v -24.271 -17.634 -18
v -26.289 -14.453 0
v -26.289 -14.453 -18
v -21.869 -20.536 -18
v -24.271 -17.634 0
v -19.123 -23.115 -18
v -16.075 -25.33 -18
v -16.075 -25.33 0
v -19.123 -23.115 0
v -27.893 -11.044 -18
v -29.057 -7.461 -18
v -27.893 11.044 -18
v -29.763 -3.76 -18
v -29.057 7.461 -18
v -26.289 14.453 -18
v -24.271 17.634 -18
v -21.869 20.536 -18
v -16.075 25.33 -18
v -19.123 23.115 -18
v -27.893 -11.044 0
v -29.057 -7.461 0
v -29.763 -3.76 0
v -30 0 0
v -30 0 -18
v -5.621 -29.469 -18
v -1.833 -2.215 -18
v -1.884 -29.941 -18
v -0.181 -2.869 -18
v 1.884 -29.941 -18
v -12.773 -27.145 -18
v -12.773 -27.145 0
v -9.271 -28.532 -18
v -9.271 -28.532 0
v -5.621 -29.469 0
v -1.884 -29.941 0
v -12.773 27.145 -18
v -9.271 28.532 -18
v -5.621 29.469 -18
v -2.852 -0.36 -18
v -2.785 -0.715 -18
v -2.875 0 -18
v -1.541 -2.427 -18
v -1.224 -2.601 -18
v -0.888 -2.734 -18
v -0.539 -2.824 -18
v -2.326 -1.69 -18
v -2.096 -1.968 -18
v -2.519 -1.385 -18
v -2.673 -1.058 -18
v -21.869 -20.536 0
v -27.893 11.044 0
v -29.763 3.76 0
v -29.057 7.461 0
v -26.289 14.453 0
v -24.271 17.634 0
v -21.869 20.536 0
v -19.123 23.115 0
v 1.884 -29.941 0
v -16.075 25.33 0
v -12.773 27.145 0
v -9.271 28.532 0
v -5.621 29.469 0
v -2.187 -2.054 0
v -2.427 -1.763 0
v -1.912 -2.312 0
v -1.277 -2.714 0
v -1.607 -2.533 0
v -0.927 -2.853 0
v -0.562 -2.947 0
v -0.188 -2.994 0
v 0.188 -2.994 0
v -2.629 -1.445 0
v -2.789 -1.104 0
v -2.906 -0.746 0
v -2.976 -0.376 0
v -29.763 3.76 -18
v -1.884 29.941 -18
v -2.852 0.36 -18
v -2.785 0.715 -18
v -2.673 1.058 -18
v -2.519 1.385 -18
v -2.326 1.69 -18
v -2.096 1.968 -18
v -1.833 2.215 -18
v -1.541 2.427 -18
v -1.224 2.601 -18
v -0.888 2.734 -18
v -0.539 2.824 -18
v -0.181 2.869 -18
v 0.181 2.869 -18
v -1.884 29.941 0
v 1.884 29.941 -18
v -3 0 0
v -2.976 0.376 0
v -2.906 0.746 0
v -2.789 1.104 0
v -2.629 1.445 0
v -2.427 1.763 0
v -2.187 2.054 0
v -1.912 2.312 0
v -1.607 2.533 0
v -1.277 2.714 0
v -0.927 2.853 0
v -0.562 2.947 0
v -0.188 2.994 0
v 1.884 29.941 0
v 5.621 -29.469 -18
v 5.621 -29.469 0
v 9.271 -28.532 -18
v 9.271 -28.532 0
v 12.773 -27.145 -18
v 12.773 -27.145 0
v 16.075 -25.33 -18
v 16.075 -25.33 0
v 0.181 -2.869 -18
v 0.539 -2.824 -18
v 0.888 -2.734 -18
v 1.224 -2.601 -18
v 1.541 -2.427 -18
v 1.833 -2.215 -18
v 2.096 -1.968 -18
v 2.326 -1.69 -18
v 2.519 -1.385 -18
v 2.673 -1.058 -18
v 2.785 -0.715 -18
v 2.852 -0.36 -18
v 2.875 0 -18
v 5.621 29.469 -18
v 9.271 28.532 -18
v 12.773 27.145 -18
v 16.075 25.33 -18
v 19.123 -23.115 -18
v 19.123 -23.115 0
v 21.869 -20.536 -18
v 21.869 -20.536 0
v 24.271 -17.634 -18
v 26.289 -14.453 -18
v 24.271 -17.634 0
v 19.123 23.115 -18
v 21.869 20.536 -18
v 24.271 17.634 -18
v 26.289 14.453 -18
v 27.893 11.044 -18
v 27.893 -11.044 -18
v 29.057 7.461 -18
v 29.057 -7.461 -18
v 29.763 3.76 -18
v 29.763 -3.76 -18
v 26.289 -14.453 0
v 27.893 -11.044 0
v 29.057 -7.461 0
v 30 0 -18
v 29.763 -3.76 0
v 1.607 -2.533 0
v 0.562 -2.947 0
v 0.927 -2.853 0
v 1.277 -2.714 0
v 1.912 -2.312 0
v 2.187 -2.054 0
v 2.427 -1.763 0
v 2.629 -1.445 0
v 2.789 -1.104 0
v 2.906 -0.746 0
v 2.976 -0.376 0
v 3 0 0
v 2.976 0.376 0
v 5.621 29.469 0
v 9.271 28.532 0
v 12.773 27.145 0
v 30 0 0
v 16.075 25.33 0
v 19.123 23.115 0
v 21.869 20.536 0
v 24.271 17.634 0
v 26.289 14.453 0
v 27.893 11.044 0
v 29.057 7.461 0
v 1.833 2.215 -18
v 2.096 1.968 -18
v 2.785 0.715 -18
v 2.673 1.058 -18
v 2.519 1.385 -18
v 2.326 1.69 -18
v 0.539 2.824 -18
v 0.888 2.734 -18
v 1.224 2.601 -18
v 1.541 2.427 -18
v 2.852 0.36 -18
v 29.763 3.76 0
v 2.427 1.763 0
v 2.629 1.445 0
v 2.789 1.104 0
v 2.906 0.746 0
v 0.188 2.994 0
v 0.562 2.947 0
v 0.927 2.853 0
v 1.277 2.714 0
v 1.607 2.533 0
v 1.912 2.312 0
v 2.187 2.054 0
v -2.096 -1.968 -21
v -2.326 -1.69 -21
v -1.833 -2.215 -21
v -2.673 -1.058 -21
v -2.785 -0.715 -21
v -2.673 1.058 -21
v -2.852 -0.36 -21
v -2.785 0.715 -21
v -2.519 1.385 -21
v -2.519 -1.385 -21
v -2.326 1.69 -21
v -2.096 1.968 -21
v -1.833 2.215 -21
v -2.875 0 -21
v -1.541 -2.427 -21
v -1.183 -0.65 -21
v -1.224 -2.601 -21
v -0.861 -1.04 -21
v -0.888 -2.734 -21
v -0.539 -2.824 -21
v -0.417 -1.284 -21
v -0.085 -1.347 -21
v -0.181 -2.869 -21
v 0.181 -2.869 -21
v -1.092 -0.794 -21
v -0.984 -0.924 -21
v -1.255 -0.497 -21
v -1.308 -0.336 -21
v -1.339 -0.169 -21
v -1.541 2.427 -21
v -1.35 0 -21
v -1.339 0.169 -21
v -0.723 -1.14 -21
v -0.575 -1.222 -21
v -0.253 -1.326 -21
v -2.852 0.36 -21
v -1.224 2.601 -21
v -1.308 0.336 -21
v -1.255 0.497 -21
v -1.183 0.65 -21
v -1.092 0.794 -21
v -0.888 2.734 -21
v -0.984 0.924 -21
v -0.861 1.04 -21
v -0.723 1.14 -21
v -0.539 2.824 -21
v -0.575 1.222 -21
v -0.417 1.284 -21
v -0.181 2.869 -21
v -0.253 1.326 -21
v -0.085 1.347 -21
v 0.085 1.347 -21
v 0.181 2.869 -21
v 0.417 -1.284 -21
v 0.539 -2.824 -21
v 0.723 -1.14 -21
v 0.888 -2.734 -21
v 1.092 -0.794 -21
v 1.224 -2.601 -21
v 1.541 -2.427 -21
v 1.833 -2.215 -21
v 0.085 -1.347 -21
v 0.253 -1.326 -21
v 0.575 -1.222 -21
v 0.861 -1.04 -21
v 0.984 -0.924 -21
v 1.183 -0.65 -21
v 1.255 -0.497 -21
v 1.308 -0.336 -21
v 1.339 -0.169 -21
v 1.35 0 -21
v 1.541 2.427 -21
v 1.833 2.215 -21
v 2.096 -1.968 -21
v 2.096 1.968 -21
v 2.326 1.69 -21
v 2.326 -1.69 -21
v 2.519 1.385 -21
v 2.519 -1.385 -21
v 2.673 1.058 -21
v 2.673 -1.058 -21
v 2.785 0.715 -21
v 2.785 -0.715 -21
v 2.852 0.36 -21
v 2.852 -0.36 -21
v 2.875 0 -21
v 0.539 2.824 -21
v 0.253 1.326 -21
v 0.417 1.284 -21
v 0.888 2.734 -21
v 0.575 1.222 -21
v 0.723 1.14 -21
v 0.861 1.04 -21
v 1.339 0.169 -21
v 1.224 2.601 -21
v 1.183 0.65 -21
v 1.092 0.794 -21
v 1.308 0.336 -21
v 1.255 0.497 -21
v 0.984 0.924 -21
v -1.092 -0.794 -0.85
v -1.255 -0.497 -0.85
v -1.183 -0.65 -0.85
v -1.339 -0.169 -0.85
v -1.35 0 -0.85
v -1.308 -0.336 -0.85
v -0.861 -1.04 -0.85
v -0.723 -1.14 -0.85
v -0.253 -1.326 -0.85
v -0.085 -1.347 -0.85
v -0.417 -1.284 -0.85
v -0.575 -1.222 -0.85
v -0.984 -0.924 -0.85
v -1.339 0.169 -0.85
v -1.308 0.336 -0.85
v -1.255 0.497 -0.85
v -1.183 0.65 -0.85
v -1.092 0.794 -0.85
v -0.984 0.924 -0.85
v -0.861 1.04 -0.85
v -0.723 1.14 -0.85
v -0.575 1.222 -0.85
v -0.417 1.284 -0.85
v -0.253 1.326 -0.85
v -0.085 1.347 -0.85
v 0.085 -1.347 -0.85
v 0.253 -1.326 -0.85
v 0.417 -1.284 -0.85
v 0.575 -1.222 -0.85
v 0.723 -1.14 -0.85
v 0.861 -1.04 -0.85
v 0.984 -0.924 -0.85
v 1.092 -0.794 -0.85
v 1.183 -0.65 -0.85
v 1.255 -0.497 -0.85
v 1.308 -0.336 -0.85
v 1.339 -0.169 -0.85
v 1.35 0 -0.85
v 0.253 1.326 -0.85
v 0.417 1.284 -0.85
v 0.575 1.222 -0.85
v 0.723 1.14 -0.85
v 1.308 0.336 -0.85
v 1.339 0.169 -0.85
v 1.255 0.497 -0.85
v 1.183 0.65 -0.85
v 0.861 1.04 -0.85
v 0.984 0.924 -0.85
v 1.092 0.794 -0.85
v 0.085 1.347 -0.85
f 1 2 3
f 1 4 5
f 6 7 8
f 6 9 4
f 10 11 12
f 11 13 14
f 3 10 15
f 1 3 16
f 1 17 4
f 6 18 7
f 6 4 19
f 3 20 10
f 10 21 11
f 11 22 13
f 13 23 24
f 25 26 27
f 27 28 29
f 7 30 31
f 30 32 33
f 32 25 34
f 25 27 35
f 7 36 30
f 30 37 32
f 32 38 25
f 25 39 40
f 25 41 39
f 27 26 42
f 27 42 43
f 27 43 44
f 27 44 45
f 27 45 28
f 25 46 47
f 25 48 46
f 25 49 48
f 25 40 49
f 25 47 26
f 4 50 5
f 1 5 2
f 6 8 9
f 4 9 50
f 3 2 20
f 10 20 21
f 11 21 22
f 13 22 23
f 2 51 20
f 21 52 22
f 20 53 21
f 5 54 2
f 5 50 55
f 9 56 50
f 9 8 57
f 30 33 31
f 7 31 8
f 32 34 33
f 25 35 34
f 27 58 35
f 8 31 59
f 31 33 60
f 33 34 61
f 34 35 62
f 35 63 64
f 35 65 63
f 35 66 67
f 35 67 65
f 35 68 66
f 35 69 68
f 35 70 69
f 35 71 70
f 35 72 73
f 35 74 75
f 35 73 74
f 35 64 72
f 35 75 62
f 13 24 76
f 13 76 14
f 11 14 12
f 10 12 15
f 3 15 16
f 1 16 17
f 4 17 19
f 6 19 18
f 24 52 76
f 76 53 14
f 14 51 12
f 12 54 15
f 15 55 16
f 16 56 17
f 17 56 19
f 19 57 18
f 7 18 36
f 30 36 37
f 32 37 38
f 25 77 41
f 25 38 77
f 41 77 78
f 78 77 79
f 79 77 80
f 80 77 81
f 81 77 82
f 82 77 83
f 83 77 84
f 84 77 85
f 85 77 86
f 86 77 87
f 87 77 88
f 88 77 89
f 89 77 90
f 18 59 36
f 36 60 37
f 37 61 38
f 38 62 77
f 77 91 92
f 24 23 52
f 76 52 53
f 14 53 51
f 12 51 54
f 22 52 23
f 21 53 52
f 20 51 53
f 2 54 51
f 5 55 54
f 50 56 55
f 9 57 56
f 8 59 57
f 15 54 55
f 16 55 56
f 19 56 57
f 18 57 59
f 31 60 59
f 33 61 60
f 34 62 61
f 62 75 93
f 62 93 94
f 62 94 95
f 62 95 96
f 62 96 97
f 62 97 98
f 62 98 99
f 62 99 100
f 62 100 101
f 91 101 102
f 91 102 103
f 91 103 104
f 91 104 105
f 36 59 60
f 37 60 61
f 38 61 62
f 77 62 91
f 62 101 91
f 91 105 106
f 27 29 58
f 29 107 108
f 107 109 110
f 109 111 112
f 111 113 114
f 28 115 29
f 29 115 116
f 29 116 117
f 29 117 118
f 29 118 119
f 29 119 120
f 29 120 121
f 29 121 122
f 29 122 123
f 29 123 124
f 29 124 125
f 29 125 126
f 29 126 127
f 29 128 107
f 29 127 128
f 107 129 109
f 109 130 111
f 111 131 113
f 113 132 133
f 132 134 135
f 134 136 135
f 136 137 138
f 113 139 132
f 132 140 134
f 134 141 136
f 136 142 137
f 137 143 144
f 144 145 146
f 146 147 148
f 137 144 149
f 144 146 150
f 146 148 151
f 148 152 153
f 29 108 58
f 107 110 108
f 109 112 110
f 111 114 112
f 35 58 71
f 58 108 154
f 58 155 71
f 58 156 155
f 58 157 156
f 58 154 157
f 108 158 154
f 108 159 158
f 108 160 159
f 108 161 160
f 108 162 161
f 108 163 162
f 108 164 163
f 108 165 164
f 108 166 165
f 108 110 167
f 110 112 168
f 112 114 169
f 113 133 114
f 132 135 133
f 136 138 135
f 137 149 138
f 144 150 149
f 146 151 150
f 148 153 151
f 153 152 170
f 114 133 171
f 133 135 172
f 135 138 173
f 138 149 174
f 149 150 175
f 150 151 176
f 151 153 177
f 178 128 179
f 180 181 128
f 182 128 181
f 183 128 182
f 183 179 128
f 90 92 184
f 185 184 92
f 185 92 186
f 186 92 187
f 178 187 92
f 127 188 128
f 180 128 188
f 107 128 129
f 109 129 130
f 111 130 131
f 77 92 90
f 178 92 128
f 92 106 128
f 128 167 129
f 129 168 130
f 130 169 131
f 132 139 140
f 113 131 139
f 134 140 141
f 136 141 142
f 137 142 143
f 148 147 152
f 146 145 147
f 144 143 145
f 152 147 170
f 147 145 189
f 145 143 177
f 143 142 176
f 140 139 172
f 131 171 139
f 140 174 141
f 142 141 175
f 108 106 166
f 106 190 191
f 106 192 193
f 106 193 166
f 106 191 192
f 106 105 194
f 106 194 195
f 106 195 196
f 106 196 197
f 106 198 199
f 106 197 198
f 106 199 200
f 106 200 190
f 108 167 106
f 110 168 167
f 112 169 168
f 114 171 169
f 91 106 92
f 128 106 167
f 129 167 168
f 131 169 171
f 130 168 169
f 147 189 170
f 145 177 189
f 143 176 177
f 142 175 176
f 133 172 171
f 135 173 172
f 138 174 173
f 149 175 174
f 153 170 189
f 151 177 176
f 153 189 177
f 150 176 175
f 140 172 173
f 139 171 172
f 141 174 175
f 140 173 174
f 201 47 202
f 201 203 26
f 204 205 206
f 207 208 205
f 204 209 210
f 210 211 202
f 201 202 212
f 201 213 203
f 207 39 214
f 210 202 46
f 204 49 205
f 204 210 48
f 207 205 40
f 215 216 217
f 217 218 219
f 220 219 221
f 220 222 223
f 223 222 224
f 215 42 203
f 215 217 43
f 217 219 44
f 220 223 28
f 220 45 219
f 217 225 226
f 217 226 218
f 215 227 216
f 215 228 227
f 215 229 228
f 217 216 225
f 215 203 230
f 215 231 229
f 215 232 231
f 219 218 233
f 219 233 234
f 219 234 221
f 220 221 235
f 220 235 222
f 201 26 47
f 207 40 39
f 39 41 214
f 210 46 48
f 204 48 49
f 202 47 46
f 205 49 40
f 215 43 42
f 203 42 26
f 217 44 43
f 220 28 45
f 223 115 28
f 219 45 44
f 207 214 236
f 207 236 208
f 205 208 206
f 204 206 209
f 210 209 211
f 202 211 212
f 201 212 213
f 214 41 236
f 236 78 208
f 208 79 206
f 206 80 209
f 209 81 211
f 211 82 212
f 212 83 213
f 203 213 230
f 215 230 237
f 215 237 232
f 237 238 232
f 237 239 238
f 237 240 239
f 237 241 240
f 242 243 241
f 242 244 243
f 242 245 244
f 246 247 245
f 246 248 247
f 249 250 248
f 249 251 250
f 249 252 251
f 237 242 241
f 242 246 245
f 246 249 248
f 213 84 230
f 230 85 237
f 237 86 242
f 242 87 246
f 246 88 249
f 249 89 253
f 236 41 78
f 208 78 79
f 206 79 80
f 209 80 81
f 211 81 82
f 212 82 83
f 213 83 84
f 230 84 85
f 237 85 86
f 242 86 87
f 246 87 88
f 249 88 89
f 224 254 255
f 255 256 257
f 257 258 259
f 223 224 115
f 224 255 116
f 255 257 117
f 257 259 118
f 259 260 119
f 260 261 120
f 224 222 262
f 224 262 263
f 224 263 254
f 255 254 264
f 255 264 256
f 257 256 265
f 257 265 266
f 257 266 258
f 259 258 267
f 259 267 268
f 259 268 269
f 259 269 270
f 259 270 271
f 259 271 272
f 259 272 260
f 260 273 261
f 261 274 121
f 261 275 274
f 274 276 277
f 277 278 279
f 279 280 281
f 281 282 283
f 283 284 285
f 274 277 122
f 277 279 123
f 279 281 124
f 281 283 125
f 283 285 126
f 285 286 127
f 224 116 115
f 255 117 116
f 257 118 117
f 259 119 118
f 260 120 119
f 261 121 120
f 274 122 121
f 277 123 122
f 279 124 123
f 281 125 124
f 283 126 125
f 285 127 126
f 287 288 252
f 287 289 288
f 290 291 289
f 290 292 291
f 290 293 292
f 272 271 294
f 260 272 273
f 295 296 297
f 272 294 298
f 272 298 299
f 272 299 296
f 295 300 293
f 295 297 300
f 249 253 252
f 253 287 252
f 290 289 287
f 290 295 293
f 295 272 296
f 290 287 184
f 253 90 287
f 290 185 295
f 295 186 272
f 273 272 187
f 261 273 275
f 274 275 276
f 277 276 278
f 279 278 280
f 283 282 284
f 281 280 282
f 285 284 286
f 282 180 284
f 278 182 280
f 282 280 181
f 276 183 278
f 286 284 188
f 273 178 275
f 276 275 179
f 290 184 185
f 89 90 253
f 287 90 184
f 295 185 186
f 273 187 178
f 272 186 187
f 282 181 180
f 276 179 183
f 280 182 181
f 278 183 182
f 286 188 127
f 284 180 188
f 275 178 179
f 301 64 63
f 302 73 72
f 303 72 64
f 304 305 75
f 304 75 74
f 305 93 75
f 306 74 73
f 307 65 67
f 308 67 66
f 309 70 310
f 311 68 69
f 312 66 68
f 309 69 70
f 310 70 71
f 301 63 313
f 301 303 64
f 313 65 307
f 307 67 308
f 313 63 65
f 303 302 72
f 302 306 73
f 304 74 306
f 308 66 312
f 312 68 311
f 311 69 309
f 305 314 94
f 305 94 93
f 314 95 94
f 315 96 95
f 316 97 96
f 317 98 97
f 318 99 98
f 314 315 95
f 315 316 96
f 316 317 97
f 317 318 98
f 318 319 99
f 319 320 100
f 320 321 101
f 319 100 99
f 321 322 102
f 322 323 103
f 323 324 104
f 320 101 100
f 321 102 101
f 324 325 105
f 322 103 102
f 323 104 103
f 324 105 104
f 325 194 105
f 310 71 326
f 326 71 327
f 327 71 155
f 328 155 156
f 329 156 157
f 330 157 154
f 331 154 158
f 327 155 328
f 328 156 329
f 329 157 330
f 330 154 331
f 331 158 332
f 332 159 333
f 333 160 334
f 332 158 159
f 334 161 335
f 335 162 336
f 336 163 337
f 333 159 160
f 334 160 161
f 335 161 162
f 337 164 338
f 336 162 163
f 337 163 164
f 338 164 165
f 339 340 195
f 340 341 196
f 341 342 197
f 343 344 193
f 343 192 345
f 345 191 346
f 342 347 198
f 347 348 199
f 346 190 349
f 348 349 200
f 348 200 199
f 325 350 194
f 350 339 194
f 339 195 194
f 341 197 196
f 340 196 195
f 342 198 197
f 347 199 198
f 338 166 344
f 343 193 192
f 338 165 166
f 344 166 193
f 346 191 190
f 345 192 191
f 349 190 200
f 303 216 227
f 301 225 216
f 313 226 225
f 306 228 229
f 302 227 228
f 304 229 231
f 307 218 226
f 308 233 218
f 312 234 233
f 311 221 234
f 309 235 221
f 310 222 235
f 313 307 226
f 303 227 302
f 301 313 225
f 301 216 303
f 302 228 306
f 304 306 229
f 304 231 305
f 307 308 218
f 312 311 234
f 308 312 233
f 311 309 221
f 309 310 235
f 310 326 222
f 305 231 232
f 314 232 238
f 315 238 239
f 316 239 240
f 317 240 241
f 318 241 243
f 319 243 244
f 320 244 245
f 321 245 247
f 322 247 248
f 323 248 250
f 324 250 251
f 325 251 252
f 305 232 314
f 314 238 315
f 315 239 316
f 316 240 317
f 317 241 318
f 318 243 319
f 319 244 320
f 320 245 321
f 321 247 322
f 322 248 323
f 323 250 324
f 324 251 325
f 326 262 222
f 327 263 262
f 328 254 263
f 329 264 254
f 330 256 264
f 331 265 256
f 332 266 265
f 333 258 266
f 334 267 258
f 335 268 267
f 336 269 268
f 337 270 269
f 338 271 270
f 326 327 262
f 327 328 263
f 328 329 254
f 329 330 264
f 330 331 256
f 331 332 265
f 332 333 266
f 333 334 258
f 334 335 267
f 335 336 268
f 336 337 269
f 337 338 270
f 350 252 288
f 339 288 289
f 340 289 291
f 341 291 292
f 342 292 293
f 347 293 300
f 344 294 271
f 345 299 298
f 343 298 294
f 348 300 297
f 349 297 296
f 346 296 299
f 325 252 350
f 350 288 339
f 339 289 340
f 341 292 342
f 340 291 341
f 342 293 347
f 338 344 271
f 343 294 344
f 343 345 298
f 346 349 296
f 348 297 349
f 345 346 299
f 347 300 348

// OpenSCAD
$fn = 50;

difference() {
	union() {
		translate(v = [0, 0, -18.0]) {
			cylinder(h = 18, r = 30.0);
		}
		#translate(v = [0, 0, -21.0]) {
			cylinder(h = 21, r = 2.875);
		}
	}
	union() {
		translate(v = [0, 0, 0]) {
			rotate(a = [0, 0, 0]) {
				difference() {
					union() {
						translate(v = [0, 0, -21.0]) {
							cylinder(h = 21, r = 1.0);
						}
						translate(v = [0, 0, -0.85]) {
							cylinder(h = 0.85, r1 = 1.35, r2 = 3.0);
						}
						translate(v = [0, 0, -21.0]) {
							cylinder(h = 21, r = 1.35);
						}
						translate(v = [0, 0, -21.0]) {
							cylinder(h = 21, r = 1.0);
						}
					}
					union();
				}
			}
		}
	}
}
